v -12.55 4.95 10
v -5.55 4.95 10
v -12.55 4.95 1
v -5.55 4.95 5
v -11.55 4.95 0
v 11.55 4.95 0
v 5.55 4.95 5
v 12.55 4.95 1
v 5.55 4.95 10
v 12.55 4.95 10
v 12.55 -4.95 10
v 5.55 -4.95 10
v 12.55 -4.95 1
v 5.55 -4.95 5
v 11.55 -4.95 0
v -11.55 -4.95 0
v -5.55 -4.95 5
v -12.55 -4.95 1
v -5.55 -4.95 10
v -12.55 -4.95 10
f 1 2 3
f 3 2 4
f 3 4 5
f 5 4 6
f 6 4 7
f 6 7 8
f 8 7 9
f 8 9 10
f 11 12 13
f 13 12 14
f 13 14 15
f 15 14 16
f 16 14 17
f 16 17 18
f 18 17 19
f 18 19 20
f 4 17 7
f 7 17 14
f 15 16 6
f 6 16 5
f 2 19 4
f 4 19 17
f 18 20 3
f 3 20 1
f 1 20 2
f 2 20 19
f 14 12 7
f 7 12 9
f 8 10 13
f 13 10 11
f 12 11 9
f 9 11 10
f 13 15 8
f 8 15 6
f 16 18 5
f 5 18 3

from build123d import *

# Parameters (mm, degrees)
SKETCH_1_W      = 11.1
SKETCH_1_H      = 9.9
EXTRUDE_1_DEPTH = 5
SKETCH_1_3_W    = 7
SKETCH_1_3_H    = 9.9
EXTRUDE_2_DEPTH = 10
CHAMFER_1_SIZE  = 1


with BuildPart() as part:
    # 스케치1 → 보스-돌출1 (new body)
    with BuildSketch(Plane.XY):
        Rectangle(SKETCH_1_W, SKETCH_1_H)
    extrude(amount=EXTRUDE_1_DEPTH)

    # 스케치1<3> → 보스-돌출2 (add)
    with BuildSketch(Plane.XY):
        with Locations((-9.05, 0)):
            Rectangle(SKETCH_1_3_W, SKETCH_1_3_H)
        with Locations((9.05, 0)):
            Rectangle(SKETCH_1_3_W, SKETCH_1_3_H)
    extrude(amount=EXTRUDE_2_DEPTH)

    # 모따기1
    chamfer_1_edges = [part.edges().sort_by_distance(p)[0] for p in [
        (-12.55, 0, 0),
        (12.55, 0, 0),
    ]]
    chamfer(chamfer_1_edges, length=CHAMFER_1_SIZE)


solid = part.part
